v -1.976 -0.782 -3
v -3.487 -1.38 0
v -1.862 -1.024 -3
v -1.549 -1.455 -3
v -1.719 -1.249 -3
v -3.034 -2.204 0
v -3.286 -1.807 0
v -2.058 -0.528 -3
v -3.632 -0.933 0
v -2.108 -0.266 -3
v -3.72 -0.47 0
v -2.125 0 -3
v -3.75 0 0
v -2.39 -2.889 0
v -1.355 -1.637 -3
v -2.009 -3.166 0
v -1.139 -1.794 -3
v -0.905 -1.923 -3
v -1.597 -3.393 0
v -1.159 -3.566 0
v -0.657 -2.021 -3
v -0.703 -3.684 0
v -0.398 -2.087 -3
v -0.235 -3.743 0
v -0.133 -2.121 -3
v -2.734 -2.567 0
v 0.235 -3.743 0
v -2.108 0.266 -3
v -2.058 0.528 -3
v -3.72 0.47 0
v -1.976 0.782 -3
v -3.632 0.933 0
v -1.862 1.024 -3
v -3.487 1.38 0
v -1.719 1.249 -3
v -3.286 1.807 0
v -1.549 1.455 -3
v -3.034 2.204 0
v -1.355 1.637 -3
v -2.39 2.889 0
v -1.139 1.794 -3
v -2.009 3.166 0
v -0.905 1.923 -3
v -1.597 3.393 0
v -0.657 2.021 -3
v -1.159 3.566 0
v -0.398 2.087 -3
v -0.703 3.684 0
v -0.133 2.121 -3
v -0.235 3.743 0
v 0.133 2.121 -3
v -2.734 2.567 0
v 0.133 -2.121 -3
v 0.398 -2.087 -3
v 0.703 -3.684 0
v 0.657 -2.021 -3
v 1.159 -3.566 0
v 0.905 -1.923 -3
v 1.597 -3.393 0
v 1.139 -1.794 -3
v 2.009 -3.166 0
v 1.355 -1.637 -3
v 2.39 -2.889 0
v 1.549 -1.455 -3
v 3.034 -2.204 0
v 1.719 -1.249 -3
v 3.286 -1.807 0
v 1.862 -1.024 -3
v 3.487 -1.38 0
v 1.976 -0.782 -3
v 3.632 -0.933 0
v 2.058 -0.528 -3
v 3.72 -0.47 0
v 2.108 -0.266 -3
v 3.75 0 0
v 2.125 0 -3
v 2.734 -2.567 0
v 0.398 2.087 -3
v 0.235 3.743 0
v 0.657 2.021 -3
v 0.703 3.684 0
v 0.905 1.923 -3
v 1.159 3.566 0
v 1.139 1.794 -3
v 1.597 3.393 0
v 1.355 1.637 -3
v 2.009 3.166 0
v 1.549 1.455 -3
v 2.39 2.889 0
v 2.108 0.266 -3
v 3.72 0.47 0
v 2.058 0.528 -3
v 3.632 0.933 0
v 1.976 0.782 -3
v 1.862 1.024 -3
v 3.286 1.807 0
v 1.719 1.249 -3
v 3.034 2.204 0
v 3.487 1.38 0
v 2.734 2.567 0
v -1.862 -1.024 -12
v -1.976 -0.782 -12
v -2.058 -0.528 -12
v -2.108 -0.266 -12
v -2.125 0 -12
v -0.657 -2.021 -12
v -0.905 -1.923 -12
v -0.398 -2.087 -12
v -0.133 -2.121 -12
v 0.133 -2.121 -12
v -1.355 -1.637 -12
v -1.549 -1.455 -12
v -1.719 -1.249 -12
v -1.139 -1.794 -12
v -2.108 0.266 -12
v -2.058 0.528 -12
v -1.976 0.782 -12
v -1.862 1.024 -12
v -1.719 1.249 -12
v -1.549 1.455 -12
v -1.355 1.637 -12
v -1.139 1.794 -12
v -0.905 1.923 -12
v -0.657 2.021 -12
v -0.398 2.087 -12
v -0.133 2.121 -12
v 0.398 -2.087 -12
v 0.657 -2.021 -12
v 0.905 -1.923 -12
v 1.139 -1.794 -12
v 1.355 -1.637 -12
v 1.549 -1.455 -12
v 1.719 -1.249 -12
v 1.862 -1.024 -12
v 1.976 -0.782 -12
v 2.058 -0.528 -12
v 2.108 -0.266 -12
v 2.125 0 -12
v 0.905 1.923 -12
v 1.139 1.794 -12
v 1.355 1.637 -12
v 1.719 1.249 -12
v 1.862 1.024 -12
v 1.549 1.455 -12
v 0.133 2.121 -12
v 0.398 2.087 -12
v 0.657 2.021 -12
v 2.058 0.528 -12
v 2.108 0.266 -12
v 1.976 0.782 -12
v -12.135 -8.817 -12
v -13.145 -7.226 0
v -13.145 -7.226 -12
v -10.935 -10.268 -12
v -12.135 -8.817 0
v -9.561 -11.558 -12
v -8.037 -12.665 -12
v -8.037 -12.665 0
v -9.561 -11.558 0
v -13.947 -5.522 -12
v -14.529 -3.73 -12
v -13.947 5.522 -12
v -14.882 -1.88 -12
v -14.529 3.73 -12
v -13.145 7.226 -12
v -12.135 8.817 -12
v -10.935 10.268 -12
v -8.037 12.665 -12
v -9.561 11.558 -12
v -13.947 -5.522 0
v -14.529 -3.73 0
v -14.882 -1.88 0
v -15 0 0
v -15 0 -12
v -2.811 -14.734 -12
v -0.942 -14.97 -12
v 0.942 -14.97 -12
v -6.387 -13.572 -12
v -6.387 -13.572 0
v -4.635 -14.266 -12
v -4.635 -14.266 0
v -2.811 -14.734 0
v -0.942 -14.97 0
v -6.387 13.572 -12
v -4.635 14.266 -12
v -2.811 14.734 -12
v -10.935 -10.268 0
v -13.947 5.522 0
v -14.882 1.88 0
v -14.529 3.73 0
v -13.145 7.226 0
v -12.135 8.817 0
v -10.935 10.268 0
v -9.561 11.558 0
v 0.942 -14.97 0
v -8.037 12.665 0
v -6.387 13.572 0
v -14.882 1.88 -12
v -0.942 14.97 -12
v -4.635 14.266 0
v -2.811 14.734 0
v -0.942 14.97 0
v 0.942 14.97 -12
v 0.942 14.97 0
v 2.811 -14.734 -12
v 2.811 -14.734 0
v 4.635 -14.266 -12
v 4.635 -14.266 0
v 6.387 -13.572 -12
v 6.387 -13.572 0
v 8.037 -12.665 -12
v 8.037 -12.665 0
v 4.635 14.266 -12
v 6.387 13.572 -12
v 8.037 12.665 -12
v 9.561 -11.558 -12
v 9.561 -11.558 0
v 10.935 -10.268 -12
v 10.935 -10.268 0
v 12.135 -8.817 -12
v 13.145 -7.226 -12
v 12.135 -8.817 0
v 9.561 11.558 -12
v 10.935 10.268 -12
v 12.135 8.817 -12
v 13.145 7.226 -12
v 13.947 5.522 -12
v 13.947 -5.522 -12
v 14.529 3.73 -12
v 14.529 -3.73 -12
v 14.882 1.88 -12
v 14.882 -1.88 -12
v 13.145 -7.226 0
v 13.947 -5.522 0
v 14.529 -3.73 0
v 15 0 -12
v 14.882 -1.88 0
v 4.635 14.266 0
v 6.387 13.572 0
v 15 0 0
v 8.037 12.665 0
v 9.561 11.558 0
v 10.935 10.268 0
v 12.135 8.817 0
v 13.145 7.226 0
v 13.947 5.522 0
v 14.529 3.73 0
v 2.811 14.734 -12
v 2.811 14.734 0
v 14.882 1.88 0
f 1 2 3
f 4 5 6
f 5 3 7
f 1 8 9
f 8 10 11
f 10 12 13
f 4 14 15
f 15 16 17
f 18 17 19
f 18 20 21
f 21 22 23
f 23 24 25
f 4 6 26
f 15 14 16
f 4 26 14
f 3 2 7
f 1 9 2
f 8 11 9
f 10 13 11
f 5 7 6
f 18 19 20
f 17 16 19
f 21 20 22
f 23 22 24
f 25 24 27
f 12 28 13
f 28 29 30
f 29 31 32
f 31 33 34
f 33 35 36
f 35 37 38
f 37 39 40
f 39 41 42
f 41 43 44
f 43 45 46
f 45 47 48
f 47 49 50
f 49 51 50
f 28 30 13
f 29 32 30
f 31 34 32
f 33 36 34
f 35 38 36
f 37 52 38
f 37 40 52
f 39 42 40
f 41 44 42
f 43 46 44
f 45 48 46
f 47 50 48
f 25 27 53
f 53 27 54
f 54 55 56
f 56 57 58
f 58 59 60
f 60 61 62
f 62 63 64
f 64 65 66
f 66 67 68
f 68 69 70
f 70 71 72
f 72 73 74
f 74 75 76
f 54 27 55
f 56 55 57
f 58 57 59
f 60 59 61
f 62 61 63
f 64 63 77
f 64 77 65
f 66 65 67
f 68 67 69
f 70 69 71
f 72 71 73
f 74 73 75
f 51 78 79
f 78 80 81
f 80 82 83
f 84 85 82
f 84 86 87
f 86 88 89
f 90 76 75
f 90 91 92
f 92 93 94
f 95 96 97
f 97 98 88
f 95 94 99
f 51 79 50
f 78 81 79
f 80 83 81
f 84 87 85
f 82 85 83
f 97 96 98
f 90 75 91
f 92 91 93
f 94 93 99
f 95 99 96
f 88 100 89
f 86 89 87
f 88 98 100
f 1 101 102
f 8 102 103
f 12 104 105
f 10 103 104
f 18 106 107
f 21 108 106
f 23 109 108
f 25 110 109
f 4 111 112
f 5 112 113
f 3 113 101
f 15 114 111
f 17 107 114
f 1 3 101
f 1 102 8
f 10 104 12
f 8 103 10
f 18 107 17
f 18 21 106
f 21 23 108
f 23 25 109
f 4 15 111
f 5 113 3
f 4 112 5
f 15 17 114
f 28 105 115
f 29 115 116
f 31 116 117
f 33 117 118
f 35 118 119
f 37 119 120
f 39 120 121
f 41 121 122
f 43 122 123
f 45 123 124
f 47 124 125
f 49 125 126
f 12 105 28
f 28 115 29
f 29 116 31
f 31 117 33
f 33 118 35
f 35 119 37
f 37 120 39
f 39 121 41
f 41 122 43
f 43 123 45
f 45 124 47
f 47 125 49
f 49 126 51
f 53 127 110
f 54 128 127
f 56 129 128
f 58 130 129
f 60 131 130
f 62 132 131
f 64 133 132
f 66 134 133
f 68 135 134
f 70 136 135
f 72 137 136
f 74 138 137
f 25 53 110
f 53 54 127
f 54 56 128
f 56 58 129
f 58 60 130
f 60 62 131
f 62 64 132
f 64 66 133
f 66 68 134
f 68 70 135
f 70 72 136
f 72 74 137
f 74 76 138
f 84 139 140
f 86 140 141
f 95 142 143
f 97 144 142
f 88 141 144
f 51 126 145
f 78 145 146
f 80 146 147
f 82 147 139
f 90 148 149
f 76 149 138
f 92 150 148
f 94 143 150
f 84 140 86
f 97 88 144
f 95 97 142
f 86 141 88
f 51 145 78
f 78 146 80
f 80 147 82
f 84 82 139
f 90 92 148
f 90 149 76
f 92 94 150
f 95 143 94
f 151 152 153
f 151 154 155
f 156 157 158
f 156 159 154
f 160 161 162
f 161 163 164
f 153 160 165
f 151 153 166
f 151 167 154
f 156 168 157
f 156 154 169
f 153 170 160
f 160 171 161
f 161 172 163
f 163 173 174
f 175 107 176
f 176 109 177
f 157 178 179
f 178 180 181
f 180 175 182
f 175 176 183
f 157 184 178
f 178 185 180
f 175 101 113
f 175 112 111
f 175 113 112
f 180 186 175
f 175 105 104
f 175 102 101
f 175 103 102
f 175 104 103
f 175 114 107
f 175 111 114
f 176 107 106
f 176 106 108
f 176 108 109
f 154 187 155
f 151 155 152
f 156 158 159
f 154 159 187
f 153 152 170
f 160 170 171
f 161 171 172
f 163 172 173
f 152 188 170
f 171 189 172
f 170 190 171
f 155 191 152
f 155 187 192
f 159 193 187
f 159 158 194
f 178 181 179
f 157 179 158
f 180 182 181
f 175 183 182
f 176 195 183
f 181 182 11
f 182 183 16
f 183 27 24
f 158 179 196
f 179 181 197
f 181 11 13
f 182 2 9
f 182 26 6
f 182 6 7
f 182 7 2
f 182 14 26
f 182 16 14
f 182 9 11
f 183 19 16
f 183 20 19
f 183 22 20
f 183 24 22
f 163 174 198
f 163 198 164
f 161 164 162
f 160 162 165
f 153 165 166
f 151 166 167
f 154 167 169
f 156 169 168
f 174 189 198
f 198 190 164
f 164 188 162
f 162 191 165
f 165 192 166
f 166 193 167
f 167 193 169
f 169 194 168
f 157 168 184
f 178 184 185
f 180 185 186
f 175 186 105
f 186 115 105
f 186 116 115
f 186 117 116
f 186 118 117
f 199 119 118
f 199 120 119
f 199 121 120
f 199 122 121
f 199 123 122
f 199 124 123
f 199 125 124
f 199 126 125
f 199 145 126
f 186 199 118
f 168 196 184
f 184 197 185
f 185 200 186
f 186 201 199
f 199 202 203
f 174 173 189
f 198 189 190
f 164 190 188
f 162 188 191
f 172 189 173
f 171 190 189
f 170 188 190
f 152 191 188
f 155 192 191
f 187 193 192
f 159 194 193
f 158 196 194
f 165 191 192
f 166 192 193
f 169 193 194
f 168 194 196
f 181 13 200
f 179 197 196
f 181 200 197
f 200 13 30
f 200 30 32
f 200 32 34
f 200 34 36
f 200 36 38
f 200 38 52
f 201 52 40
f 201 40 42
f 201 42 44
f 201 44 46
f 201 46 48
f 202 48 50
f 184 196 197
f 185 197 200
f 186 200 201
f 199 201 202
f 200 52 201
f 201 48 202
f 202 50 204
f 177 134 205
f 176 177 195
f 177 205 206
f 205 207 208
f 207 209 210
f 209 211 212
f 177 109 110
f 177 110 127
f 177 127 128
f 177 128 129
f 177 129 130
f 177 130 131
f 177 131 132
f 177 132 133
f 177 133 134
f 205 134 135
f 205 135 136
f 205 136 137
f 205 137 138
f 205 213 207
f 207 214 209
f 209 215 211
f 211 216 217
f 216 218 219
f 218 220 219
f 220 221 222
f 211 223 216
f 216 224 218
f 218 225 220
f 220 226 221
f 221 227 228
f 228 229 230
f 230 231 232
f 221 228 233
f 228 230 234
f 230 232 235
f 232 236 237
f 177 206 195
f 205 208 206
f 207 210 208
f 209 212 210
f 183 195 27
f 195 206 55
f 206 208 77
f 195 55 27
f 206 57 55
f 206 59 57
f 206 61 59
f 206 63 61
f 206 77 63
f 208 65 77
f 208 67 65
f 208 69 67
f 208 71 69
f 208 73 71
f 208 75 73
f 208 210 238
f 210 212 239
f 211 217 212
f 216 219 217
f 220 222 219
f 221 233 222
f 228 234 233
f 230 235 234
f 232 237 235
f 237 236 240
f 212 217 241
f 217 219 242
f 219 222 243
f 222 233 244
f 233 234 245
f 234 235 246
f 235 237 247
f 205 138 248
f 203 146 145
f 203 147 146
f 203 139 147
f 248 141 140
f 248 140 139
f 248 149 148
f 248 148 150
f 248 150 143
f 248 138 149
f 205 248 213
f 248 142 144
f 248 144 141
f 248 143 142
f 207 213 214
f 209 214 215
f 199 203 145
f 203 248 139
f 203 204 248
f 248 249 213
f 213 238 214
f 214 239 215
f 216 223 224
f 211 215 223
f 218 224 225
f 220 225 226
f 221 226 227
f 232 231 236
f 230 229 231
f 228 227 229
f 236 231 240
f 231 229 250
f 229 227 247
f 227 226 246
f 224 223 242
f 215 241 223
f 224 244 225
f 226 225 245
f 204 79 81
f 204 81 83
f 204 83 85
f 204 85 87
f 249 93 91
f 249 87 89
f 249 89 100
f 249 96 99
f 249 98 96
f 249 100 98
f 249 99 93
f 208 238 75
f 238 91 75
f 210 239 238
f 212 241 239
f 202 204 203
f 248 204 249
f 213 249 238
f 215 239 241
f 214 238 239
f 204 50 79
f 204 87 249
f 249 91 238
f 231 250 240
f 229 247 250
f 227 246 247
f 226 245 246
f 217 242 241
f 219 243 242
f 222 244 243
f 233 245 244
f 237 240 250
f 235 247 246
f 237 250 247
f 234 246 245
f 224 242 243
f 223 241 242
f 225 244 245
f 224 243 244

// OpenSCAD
$fn = 50;

difference() {
	union() {
		translate(v = [0, 0, -12.0]) {
			cylinder(h = 12, r = 15.0);
		}
	}
	union() {
		translate(v = [0, 0, 0]) {
			rotate(a = [0, 0, 0]) {
				difference() {
					union() {
						translate(v = [0, 0, -15.0]) {
							cylinder(h = 15, r = 2.0);
						}
						translate(v = [0, 0, -3]) {
							cylinder(h = 3, r1 = 2.125, r2 = 3.75);
						}
						translate(v = [0, 0, -15.0]) {
							cylinder(h = 15, r = 2.125);
						}
						translate(v = [0, 0, -15.0]) {
							cylinder(h = 15, r = 2.0);
						}
					}
					union();
				}
			}
		}
	}
}
